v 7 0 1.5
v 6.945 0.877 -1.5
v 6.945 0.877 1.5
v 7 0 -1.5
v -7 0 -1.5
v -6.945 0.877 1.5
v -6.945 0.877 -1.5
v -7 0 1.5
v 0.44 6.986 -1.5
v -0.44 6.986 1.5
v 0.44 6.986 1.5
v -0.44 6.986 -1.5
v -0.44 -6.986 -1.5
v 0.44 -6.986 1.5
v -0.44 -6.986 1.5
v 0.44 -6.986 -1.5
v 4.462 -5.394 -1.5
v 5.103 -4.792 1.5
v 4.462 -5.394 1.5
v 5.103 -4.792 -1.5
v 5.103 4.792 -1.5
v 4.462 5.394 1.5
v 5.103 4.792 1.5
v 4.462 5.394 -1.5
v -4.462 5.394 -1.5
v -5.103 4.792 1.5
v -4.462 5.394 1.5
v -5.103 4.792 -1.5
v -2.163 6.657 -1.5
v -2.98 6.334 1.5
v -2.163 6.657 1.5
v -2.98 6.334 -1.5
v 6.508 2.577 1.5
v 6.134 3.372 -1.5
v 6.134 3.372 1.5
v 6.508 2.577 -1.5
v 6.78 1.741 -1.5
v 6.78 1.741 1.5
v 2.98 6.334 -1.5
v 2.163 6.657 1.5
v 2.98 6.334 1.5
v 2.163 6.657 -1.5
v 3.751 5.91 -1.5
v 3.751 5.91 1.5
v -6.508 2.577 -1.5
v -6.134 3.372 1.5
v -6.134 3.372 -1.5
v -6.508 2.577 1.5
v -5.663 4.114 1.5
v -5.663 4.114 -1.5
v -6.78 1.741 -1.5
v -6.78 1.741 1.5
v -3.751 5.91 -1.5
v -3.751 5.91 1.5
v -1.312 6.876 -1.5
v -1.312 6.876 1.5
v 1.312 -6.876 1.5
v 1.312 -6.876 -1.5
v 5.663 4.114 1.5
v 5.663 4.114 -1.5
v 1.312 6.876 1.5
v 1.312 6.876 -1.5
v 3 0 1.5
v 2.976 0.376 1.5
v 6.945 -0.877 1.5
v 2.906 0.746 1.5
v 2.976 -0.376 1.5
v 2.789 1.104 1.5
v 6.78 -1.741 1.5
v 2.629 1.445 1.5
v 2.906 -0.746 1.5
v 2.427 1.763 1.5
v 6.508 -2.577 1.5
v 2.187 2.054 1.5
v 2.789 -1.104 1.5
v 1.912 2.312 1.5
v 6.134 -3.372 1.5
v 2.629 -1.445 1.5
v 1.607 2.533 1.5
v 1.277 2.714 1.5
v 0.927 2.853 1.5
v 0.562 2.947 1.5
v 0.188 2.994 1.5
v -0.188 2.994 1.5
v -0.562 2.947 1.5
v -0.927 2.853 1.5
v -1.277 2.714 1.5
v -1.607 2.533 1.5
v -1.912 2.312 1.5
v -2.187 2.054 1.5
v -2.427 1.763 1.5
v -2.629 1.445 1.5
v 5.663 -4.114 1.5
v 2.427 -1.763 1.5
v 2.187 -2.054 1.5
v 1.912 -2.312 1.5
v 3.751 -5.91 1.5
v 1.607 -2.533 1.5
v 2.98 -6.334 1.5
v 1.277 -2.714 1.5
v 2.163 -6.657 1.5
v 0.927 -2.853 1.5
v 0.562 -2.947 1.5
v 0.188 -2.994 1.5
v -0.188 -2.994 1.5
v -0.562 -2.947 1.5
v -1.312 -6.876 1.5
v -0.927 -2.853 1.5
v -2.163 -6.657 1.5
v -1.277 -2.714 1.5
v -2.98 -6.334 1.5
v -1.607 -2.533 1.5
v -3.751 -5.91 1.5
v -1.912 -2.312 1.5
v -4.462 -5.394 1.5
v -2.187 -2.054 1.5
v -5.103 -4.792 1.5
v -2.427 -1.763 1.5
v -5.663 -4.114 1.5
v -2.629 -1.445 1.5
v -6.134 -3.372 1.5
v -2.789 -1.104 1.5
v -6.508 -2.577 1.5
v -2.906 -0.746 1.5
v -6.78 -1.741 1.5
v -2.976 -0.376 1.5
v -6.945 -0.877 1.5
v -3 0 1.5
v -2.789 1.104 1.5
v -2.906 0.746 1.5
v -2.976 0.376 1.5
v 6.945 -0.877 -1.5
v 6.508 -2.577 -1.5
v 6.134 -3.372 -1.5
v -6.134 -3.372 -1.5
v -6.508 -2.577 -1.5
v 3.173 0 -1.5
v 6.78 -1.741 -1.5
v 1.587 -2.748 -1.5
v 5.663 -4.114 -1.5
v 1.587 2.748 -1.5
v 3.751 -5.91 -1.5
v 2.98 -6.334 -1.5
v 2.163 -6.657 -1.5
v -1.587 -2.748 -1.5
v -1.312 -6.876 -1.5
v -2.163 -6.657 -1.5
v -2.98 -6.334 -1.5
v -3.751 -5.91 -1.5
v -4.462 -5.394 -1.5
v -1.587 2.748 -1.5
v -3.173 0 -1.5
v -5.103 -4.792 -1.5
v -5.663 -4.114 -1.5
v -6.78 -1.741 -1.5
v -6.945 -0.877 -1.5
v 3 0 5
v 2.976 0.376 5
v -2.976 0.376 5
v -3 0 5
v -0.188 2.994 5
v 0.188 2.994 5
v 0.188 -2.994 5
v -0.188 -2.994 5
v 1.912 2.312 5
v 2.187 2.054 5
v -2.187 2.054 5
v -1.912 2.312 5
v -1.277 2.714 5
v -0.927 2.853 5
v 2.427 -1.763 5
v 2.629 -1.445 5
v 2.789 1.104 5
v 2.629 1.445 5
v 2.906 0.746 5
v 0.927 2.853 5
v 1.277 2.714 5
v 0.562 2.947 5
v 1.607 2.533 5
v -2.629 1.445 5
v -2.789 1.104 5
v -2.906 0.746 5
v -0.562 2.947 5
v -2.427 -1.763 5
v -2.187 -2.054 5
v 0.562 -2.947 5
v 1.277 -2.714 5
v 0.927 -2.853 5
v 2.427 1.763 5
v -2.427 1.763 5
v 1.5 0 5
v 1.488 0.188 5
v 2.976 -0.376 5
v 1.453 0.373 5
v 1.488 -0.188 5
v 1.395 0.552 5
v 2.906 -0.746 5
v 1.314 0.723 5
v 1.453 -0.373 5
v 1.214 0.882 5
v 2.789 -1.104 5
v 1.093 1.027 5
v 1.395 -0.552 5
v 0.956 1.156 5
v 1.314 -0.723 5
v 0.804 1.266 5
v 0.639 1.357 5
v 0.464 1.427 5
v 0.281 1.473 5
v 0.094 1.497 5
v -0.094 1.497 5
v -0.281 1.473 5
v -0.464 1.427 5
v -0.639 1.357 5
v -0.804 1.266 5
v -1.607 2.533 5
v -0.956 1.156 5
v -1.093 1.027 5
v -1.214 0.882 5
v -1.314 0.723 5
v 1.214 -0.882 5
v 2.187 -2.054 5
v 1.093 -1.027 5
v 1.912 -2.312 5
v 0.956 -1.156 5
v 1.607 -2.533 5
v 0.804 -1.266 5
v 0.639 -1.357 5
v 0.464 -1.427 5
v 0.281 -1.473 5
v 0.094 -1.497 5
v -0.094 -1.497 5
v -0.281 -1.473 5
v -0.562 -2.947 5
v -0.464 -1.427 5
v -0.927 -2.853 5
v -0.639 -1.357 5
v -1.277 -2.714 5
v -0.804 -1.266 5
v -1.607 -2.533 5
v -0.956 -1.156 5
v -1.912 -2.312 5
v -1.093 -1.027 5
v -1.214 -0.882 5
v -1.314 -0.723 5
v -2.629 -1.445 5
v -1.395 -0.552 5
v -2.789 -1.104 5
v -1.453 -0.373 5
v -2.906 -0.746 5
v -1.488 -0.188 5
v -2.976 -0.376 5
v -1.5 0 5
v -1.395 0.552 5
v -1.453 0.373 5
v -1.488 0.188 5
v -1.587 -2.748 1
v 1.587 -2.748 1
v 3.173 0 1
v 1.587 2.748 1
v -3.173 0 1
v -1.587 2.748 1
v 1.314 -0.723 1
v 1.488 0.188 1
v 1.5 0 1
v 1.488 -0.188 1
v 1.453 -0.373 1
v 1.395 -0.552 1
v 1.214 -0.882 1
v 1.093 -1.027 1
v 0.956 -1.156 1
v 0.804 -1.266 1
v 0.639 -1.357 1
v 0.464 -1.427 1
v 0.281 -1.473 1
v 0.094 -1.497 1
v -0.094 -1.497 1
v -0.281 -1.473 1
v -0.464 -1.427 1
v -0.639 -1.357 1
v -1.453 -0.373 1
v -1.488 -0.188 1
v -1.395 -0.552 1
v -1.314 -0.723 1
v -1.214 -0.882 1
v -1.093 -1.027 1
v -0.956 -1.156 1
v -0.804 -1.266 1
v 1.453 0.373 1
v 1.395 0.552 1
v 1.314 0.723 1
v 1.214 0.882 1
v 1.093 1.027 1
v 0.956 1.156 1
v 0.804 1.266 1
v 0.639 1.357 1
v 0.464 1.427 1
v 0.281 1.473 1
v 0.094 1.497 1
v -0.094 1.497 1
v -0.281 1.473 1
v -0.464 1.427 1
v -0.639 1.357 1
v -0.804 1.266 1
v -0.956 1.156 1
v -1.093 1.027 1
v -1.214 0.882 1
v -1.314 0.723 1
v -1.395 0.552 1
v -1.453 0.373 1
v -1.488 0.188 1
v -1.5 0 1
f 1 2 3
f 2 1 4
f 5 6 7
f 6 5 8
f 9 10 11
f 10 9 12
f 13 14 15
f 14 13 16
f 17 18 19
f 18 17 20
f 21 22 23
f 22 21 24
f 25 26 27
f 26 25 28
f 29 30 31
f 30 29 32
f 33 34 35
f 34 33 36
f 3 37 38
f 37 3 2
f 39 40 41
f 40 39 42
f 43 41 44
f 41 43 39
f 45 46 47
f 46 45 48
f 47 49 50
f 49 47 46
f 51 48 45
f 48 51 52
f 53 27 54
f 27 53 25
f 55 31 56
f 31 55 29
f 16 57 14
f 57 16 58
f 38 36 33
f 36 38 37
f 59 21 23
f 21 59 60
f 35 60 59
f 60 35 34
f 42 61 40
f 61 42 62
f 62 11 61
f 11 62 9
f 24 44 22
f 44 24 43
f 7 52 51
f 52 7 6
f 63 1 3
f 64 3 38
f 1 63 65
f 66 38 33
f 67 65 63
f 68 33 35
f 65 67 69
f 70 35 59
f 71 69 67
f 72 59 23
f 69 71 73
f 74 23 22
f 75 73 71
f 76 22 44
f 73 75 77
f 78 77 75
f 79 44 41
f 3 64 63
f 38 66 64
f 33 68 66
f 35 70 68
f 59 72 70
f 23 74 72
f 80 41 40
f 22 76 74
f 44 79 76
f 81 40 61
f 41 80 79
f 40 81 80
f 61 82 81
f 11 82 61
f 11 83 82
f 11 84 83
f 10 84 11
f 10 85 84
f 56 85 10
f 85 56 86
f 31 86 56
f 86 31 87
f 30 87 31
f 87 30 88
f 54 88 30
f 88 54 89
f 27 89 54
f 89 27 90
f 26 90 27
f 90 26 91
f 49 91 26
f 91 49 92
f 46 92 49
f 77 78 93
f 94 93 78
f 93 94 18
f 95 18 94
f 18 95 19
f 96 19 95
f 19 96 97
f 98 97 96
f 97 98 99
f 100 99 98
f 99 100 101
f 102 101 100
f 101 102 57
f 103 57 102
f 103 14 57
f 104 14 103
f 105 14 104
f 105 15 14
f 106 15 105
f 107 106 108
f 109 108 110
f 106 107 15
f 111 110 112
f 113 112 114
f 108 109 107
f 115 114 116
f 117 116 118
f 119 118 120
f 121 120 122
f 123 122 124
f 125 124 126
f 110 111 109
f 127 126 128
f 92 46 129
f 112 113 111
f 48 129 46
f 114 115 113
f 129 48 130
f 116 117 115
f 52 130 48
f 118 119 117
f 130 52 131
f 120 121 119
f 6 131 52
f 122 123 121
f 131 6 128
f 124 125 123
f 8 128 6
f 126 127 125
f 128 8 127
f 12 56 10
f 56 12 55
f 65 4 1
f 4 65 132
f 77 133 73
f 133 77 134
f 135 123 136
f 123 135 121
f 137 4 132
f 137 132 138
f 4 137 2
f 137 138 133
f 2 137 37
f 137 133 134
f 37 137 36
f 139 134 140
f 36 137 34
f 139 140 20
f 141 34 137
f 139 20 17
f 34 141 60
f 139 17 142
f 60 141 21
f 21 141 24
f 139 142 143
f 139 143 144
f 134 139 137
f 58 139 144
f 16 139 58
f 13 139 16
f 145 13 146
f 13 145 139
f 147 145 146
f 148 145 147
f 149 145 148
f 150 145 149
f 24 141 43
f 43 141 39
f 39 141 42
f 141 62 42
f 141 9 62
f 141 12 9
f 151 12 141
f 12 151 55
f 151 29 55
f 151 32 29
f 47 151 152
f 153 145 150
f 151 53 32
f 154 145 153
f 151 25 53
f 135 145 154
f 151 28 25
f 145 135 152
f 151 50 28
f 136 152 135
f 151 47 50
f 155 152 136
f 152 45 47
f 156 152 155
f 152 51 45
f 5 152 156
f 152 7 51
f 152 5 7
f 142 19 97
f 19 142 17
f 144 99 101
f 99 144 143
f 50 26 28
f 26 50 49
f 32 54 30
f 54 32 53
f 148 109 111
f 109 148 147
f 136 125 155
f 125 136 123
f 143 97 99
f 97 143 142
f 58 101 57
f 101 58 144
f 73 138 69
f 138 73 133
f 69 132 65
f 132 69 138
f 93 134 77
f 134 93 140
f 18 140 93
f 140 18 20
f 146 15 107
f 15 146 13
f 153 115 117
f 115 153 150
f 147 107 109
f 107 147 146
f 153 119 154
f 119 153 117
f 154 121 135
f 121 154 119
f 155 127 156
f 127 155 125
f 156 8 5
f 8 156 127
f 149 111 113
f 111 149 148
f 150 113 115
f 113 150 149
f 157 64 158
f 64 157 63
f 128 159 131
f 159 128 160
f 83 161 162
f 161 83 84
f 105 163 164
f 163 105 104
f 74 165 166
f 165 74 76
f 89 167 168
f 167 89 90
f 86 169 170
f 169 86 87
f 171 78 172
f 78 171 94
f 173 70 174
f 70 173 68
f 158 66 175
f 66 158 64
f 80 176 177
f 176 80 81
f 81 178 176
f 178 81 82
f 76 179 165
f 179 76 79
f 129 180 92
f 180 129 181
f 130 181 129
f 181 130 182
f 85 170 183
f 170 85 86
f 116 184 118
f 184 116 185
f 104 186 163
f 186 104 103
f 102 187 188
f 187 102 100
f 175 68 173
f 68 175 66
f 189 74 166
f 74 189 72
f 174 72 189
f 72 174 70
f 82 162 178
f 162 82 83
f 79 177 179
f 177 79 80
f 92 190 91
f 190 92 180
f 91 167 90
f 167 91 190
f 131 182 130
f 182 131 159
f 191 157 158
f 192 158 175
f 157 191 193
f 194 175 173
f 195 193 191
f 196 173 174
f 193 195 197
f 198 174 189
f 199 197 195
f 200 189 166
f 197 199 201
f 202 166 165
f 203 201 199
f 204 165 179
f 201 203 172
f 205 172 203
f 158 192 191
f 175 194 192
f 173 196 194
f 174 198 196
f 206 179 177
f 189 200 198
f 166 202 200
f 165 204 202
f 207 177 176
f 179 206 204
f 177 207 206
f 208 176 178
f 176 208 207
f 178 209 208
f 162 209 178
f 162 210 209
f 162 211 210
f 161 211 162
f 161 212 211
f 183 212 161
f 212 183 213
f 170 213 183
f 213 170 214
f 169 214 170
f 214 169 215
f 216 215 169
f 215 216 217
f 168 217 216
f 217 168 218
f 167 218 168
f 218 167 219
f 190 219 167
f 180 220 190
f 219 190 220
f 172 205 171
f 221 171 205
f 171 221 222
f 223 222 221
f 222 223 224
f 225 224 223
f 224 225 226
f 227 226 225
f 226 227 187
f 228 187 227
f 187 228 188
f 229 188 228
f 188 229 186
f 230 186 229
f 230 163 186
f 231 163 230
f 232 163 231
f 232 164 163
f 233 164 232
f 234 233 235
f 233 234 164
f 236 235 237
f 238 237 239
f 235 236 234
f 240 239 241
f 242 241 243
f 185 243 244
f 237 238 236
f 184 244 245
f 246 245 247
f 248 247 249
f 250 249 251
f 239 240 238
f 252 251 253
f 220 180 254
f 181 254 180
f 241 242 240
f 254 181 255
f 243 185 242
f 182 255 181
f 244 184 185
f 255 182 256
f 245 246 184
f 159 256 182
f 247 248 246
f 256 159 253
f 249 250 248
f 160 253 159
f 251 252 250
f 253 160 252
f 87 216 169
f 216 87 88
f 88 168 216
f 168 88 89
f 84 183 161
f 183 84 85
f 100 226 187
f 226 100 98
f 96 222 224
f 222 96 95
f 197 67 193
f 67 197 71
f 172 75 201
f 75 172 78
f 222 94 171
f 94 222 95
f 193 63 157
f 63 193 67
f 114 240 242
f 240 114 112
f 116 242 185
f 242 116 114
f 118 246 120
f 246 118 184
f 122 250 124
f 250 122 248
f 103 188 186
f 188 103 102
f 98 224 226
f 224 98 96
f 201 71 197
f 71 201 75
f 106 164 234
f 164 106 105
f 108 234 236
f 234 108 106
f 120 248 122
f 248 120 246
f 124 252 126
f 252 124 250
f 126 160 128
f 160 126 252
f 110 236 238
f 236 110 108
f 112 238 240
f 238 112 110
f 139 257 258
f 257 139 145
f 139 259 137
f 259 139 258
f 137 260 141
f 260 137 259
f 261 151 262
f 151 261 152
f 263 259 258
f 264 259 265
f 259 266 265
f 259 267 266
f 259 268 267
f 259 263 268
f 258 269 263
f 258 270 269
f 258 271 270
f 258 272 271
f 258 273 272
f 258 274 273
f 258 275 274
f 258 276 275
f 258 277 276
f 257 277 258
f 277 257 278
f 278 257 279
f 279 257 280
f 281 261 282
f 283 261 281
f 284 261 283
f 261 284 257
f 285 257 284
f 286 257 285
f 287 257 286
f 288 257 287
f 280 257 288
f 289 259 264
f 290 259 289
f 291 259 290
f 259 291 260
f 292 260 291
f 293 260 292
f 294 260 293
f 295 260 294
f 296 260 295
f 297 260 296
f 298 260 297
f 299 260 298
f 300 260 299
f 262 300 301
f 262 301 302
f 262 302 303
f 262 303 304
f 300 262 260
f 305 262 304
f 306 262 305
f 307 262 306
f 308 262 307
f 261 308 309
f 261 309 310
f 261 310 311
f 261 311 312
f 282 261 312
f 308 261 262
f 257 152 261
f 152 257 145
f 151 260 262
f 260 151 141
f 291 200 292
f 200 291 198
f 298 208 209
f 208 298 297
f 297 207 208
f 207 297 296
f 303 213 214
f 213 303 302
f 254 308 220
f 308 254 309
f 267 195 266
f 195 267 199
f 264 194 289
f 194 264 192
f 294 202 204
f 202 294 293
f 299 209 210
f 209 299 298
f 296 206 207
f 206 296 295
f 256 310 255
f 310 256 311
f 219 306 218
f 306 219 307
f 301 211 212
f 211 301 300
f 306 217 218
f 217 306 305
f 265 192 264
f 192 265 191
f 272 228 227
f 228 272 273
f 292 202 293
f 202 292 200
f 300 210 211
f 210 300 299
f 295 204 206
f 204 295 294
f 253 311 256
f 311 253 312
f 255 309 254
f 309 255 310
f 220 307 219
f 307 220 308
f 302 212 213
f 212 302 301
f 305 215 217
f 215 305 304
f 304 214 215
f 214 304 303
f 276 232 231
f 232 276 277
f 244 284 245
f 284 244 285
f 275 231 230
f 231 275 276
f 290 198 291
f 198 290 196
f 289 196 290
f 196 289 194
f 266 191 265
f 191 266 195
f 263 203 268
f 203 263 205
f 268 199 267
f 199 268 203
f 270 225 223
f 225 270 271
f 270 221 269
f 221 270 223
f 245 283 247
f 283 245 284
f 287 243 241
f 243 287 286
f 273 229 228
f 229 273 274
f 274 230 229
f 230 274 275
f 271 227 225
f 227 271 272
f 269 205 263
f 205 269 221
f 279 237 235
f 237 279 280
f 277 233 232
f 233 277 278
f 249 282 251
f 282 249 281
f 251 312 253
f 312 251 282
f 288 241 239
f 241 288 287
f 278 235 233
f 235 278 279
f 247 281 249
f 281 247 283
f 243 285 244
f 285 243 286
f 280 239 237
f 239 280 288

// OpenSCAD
$fn = 50;


difference() {
	union() {
		translate(v = [0, 0, -1.5000000000]) {
			cylinder(h = 3, r = 7.0000000000);
		}
		translate(v = [0, 0, -1.5000000000]) {
			cylinder(h = 6.5000000000, r = 3.0000000000);
		}
	}
	union() {
		translate(v = [0, 0, -1.5000000000]) {
			rotate(a = [0, 0, 0]) {
				difference() {
					union() {
						#linear_extrude(height = 2.5000000000) {
							polygon(points = [[3.1735000000, 0.0000000000], [1.5867500000, 2.7483316189], [-1.5867500000, 2.7483316189], [-3.1735000000, 0.0000000000], [-1.5867500000, -2.7483316189], [1.5867500000, -2.7483316189]]);
						}
					}
					union();
				}
			}
		}
		translate(v = [0, 0, -50.0000000000]) {
			cylinder(h = 100, r = 1.5000000000);
		}
	}
}
